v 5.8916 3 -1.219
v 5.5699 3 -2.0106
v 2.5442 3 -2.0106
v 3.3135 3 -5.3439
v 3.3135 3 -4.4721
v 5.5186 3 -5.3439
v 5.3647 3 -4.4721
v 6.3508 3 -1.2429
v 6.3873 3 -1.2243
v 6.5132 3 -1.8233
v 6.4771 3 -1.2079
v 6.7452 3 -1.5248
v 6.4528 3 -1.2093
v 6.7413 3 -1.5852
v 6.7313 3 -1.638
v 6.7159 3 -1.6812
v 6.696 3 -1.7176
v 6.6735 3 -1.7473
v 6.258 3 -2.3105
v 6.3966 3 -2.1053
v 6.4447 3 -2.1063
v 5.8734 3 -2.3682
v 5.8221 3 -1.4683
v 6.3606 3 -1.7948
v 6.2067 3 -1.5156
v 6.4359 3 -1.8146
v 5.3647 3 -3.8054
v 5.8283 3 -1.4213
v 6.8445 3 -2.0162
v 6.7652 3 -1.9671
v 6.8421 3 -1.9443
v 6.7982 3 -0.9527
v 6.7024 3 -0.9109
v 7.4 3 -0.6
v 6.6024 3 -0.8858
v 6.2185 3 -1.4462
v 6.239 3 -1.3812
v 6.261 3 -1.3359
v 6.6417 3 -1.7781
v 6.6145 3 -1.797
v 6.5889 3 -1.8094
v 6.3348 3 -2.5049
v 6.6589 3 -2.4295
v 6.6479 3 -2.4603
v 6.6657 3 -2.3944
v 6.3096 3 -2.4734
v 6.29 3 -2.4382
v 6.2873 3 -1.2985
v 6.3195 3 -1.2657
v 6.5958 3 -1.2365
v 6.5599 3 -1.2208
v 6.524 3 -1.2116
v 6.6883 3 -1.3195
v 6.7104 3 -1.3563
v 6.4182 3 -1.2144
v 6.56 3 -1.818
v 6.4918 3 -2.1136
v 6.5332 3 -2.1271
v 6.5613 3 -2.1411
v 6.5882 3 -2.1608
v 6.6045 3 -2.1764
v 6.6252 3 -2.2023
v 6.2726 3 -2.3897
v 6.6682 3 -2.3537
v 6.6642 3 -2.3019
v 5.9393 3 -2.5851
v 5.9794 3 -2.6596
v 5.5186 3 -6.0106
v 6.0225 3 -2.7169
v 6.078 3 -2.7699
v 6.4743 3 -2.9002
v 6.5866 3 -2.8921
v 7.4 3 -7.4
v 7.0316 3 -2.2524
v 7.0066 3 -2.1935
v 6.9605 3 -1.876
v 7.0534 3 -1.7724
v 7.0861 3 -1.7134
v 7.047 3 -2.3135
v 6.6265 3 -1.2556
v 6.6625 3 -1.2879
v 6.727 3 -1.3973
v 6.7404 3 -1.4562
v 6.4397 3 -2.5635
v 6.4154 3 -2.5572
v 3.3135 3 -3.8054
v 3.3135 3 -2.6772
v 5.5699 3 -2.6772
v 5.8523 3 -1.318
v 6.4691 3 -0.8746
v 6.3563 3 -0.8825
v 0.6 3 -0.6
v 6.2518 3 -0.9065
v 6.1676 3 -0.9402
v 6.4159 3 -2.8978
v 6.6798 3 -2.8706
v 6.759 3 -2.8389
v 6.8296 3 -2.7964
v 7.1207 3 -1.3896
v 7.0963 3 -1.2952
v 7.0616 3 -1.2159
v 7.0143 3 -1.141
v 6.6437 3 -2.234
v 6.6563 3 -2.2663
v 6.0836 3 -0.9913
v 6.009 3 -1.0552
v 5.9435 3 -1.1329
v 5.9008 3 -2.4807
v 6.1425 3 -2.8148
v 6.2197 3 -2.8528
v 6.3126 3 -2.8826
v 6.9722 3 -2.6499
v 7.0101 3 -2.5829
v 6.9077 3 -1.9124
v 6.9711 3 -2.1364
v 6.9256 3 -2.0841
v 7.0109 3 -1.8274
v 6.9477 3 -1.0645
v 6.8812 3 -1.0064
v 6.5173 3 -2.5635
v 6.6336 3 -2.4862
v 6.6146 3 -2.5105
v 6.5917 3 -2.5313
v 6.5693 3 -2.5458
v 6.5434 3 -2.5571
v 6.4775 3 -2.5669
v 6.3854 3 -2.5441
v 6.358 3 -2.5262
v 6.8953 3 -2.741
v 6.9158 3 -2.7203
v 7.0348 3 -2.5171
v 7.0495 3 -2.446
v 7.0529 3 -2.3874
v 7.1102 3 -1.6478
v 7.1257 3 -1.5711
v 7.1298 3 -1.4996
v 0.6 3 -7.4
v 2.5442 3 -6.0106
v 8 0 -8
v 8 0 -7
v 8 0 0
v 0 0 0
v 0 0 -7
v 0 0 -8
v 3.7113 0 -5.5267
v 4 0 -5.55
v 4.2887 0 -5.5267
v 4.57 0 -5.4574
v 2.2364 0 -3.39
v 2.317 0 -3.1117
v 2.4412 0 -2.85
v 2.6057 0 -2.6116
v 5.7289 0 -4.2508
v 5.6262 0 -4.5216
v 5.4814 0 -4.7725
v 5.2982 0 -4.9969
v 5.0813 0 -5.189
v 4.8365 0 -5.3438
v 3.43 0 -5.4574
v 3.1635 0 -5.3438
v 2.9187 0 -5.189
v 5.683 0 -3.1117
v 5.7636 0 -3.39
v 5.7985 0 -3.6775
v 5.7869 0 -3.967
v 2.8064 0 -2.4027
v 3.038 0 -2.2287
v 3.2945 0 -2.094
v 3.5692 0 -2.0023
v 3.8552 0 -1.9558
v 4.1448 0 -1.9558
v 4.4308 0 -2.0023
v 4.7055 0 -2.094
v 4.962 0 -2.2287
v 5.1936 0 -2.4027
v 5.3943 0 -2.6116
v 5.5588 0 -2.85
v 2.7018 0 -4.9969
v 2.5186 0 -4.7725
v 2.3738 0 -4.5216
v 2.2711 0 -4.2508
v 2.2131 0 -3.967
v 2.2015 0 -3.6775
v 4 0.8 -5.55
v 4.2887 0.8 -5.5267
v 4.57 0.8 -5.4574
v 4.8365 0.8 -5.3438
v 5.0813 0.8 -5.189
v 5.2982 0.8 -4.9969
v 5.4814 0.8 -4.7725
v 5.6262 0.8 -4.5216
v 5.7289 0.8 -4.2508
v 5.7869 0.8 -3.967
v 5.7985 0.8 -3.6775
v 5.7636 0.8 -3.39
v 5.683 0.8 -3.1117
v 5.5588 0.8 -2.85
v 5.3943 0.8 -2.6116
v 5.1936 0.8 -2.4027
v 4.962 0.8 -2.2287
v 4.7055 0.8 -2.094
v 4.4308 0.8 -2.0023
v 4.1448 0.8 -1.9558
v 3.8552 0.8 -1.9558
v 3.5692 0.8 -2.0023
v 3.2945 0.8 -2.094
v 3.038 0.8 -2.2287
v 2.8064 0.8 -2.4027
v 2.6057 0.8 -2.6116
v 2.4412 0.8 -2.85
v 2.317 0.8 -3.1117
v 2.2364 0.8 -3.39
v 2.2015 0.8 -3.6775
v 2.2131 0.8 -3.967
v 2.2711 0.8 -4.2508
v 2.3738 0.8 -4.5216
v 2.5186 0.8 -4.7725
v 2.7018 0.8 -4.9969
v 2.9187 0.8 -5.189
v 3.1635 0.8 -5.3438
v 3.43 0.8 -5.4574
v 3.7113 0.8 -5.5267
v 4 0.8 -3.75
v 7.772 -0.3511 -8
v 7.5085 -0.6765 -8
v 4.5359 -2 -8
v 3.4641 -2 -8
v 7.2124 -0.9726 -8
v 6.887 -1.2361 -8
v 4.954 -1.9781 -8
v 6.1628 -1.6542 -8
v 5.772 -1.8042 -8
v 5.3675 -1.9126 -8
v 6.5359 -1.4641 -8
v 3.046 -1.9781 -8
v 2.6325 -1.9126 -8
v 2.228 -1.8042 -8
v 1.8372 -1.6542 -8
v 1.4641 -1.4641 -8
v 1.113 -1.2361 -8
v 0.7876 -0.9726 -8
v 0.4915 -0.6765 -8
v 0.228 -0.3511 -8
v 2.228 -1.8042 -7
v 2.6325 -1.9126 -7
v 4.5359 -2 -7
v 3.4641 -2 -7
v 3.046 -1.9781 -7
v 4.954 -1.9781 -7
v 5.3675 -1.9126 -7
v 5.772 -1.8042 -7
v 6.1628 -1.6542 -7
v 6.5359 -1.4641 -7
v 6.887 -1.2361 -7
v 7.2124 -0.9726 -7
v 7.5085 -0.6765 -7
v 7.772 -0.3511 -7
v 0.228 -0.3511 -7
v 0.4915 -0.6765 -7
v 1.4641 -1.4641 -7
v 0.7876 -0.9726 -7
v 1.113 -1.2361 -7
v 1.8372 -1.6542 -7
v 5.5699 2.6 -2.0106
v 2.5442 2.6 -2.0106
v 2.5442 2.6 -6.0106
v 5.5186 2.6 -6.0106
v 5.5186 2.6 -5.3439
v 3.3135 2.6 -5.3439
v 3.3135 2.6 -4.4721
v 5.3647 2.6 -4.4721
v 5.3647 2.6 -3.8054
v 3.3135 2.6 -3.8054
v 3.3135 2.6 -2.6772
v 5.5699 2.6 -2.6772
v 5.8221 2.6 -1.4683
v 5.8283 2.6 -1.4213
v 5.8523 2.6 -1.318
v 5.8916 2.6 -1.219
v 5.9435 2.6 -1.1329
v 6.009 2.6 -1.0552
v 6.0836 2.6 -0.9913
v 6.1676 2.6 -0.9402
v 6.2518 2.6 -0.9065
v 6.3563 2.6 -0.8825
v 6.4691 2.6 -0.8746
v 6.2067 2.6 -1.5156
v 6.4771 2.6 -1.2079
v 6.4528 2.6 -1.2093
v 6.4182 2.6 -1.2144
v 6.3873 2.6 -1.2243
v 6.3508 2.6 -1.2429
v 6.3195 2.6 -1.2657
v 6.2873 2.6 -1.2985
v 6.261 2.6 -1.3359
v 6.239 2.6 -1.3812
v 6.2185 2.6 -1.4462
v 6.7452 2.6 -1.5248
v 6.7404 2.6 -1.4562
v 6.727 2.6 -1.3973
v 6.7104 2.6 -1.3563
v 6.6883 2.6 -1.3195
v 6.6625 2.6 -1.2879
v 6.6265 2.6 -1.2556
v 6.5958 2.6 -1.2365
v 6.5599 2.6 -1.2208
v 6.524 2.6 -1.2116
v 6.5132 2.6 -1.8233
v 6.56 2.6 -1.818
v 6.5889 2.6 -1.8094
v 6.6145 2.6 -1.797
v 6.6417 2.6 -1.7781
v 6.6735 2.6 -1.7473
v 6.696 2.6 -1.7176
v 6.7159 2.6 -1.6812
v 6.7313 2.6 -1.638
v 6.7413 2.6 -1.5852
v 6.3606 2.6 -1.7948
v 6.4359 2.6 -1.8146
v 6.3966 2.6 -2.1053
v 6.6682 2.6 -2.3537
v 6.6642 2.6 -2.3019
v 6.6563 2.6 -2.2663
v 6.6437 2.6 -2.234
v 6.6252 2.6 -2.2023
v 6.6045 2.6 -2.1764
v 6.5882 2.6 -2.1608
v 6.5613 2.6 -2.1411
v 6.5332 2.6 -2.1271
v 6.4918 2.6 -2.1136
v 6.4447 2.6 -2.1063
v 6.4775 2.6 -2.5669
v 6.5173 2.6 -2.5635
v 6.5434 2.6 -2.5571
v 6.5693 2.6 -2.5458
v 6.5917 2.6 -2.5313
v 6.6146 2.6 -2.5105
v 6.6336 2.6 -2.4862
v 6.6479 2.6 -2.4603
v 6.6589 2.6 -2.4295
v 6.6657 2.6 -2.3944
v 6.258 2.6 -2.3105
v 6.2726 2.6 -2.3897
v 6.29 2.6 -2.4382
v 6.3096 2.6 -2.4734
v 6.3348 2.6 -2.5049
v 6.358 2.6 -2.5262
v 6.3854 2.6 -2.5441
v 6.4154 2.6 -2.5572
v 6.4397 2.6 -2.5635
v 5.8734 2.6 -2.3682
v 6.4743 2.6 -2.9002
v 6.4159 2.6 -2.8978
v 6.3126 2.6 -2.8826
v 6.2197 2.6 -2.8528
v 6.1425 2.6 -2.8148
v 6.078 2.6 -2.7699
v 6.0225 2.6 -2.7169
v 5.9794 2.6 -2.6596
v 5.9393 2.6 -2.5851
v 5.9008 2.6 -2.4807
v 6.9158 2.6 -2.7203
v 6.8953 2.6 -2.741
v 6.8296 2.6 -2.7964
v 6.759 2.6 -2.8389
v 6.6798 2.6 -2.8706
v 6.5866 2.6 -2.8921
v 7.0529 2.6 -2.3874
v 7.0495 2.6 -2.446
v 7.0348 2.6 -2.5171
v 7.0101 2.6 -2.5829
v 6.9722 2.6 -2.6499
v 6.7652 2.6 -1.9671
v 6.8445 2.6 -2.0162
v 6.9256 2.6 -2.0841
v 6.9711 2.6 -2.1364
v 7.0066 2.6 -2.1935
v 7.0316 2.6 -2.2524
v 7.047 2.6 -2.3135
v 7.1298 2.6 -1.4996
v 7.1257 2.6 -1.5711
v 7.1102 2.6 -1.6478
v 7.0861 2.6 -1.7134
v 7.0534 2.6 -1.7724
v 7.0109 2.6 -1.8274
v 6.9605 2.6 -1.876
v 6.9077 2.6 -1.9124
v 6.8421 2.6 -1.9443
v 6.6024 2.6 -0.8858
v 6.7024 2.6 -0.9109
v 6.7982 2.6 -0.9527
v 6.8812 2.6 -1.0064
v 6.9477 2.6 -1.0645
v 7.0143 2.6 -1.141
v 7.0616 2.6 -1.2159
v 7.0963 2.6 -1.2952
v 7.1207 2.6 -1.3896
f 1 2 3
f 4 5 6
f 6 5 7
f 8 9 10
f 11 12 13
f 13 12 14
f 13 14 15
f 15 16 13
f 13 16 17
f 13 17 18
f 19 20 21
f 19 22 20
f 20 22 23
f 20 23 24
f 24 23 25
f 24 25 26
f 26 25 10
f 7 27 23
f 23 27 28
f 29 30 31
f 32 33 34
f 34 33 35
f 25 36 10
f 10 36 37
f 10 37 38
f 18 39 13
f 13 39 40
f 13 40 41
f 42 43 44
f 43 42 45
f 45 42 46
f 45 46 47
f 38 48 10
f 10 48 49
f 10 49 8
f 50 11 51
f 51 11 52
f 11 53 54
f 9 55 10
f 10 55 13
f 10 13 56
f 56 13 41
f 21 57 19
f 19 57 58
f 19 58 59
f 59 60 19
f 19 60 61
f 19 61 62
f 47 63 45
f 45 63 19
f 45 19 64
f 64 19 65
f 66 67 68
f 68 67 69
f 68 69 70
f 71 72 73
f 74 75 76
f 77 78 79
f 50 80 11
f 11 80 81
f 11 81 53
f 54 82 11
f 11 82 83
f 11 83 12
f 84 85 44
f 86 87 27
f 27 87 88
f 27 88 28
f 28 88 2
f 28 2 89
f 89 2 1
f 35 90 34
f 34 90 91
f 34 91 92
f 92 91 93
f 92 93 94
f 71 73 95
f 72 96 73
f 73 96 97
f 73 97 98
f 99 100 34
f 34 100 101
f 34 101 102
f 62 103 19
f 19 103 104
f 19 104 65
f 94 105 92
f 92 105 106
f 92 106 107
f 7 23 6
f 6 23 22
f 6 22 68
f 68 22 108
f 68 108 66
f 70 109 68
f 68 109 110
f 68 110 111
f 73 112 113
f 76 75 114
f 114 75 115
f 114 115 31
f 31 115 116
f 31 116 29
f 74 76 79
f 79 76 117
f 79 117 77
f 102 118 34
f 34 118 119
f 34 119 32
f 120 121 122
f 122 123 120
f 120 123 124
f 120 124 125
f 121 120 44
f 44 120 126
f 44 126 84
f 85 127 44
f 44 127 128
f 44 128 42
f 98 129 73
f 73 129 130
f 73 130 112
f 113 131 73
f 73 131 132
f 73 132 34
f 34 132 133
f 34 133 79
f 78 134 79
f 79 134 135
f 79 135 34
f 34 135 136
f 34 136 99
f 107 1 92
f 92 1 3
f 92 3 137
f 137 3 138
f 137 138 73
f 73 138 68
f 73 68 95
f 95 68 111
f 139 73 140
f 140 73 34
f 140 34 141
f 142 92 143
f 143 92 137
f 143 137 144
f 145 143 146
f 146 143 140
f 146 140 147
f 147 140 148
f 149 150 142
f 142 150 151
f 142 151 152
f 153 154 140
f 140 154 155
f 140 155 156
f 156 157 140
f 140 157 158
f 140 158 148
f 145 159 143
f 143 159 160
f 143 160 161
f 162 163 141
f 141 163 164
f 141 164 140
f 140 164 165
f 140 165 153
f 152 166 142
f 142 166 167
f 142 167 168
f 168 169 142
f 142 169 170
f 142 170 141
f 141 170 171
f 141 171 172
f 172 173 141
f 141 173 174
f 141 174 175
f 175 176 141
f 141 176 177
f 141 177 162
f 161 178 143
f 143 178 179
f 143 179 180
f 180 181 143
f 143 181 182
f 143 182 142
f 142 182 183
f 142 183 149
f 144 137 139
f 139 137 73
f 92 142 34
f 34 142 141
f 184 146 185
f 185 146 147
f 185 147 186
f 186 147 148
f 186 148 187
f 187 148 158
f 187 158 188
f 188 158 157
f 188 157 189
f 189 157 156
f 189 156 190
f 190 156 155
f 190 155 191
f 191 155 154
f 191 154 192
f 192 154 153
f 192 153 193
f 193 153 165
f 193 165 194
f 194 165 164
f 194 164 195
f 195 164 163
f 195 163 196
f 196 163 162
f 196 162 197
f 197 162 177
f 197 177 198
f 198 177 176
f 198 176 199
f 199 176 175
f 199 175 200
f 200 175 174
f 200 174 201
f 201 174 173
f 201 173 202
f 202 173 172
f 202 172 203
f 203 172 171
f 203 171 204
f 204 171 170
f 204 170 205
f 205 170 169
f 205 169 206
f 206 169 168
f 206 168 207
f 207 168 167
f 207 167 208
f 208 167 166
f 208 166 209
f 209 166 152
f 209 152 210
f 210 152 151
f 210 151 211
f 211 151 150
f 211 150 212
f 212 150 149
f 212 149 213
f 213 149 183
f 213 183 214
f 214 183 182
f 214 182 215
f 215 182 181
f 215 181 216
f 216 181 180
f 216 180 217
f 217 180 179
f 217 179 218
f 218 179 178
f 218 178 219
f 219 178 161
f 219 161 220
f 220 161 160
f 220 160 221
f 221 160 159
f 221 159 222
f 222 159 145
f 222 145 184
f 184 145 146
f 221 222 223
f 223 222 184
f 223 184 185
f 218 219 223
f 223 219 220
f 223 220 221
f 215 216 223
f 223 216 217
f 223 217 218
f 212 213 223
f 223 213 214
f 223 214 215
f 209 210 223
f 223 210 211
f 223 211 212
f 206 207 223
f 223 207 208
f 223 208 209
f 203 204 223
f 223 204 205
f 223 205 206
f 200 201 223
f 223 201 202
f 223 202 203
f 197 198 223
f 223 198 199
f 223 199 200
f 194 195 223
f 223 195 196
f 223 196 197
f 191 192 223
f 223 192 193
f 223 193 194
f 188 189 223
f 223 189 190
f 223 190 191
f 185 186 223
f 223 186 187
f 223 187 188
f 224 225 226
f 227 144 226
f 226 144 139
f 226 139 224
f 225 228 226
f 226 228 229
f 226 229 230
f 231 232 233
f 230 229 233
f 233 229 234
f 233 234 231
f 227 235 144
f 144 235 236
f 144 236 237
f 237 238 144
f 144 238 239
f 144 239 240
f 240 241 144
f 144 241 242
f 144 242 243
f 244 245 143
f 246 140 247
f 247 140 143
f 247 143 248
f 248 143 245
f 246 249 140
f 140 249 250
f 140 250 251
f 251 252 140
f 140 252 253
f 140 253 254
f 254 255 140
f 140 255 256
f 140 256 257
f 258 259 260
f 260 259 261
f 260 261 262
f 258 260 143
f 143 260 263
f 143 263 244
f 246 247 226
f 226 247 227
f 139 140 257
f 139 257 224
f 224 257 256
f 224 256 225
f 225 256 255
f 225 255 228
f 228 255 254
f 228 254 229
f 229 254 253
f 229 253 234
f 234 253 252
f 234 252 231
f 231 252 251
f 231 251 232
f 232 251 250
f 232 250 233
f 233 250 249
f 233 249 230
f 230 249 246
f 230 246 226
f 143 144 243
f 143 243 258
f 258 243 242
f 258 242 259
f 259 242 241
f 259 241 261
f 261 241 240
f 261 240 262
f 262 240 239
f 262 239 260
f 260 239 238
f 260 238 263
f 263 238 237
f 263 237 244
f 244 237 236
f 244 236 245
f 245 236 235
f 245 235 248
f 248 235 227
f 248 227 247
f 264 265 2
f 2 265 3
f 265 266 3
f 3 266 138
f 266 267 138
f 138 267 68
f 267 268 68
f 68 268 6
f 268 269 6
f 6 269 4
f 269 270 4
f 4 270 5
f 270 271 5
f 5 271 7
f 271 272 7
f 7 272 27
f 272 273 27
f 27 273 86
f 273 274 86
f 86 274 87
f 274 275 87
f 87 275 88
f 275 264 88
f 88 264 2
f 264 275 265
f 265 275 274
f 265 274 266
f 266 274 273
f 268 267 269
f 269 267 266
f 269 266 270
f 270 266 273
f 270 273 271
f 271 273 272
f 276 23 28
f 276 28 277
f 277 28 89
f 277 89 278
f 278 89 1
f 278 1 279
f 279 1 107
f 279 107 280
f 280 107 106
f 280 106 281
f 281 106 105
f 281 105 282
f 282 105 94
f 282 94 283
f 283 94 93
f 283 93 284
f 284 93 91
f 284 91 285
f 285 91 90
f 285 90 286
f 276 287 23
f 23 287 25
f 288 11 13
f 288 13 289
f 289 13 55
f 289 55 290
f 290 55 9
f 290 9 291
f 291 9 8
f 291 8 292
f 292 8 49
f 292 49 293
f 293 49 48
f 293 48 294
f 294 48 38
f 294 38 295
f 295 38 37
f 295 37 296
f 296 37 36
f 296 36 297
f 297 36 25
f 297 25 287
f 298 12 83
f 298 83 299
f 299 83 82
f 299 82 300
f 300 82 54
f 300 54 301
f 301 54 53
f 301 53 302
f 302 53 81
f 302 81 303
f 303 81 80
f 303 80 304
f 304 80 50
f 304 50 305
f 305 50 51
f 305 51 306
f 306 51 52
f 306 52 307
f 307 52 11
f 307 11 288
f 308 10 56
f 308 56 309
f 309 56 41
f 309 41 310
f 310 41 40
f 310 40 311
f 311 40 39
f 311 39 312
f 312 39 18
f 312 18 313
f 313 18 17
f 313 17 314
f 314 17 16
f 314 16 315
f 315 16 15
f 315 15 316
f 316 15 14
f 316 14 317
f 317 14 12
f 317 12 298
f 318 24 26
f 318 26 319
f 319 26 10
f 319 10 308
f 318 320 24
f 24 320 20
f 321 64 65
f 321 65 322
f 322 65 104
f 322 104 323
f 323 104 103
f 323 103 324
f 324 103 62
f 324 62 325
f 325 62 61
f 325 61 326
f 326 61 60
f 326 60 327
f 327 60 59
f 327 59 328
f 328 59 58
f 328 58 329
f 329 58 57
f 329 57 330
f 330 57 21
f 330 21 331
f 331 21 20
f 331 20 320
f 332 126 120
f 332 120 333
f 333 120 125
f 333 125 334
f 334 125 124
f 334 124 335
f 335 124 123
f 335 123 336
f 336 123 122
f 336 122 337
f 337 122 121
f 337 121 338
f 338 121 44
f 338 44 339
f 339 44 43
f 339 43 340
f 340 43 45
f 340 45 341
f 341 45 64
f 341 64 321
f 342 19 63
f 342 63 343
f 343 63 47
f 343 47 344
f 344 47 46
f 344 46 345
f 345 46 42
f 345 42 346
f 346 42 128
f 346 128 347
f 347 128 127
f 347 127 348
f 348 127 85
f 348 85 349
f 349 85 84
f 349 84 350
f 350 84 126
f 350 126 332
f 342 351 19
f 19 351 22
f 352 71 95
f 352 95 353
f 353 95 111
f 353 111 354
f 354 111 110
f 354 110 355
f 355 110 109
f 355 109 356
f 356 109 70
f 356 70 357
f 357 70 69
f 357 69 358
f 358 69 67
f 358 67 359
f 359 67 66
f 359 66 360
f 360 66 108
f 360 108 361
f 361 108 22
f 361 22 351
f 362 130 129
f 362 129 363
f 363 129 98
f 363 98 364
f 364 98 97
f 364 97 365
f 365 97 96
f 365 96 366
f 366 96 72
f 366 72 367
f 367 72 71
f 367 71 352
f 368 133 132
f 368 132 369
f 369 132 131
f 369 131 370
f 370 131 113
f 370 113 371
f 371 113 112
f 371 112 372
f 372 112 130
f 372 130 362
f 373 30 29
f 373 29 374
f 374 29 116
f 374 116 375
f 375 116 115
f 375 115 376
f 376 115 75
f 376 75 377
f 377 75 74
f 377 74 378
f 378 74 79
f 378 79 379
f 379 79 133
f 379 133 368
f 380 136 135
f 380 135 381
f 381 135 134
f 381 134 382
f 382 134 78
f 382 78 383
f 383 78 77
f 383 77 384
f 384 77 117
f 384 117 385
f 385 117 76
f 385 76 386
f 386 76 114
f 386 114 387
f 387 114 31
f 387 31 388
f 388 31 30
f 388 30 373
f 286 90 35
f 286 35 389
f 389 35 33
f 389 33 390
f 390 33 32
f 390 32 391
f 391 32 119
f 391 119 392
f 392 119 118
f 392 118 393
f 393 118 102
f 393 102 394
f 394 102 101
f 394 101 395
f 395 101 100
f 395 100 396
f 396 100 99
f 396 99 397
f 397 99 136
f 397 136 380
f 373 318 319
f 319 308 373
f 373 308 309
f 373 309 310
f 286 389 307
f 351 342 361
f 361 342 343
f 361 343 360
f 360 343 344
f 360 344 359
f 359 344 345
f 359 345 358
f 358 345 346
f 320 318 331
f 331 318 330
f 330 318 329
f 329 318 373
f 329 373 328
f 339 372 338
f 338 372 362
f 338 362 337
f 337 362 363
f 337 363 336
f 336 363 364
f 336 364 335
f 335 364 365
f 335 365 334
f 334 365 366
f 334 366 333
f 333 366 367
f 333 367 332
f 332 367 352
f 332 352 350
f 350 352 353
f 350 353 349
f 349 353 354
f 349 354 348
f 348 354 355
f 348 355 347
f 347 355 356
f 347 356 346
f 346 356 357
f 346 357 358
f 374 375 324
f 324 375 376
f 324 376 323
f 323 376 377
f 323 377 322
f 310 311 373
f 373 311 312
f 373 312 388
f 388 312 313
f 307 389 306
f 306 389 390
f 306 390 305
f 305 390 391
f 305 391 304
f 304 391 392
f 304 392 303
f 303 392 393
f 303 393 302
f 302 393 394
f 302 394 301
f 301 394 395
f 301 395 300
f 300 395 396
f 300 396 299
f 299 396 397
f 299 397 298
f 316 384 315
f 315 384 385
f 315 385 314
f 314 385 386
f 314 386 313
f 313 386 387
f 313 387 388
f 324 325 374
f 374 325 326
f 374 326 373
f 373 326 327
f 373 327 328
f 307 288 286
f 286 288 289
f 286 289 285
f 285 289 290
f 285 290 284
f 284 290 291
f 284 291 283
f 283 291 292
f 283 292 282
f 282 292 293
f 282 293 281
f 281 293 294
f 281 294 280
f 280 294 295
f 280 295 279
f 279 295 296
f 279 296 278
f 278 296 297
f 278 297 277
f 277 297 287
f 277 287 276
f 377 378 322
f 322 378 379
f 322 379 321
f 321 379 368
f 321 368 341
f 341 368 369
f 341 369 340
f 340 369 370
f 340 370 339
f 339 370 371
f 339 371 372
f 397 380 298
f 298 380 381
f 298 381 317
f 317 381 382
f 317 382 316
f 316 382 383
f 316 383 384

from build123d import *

# Parameters (mm, degrees)
SKETCH1_W               = 8
SKETCH1_H               = 8
BOSS_EXTRUDE1_DEPTH     = 3
CUT_EXTRUDE1_DEPTH      = 12.704699911
CUT_EXTRUDE1_DEPTH_BACK = 12.704699911
CUT_EXTRUDE2_DEPTH      = 11
SKETCH4_R               = 1.8
CUT_EXTRUDE3_DEPTH      = 0.8
SKETCH5_W               = 8
SKETCH5_H               = 1
BOSS_EXTRUDE2_DEPTH     = 2
FILLET1_R               = 4
CUT_EXTRUDE4_DEPTH      = 0.4
CUT_EXTRUDE5_DEPTH      = 0.4


with BuildPart() as part:
    # Sketch1 → Boss-Extrude1 (new body)
    with BuildSketch(Plane(origin=(0, 0, 0), x_dir=(1, 0, 0), z_dir=(0, 1, 0))):
        with Locations((4, 4)):
            Rectangle(SKETCH1_W, SKETCH1_H)
    extrude(amount=BOSS_EXTRUDE1_DEPTH)

    # Sketch2 → Cut-Extrude1 (cut, two sides: drawn at the far end of the back side and taken through both)
    with BuildSketch(Plane.XY.offset(-CUT_EXTRUDE1_DEPTH_BACK)):
        Polygon((0, 0), (0.6, 3), (0, 3), align=None)
        Polygon((8, 0), (7.4, 3), (8, 3), align=None)
    extrude(amount=CUT_EXTRUDE1_DEPTH + CUT_EXTRUDE1_DEPTH_BACK, mode=Mode.SUBTRACT)

    # Sketch3 → Cut-Extrude2 (cut)
    with BuildSketch(Plane(origin=(0, 0, 0), x_dir=(0, 0, -1), z_dir=(1, 0, 0))):
        Polygon((0, 0), (0.6, 3), (0, 3), align=None)
        Polygon((8, 3), (7.4, 3), (8, 0), align=None)
    extrude(amount=CUT_EXTRUDE2_DEPTH, mode=Mode.SUBTRACT)

    # Sketch4 → Cut-Extrude3 (cut)
    with BuildSketch(Plane.XZ):
        with Locations(Location((4, -3.75, 0), (0, 0, 270))):
            Circle(SKETCH4_R)
    extrude(amount=-CUT_EXTRUDE3_DEPTH, mode=Mode.SUBTRACT)

    # Sketch5 → Boss-Extrude2 (add)
    with BuildSketch(Plane.XZ):
        with Locations((4, -7.5)):
            Rectangle(SKETCH5_W, SKETCH5_H)
    extrude(amount=BOSS_EXTRUDE2_DEPTH)

    # Fillet1
    # the kernel refuses this fillet: 4 mm, written as the material it takes off along each edge
    with BuildSketch(Plane(origin=(8, -2, -16.660254038), x_dir=(0, 1, 0), z_dir=(0, 0, 1)), Plane(origin=(0, -2, 1.660254038), x_dir=(0, 1, 0), z_dir=(0, 0, -1))) as fillet1_piece_1:
        with BuildLine():
            CenterArc((4, 3.464101615), FILLET1_R, 180, 60)
            Line((0, 3.464101615), (-0.08, 3.464101615))
            Line((-0.08, 3.464101615), (-0.08, 0))
            Line((-0.08, 0), (0, -0.08))
            ThreePointArc((0, -0.08), (1, -0.08), (1.96, -0.069282032))
            Line((1.96, -0.069282032), (2, 0))
        make_face()
    extrude(amount=18.320508076, mode=Mode.SUBTRACT)

    # Sketch6 → Cut-Extrude4 (cut)
    with BuildSketch(Plane(origin=(0, 3, 0), x_dir=(1, 0, 0), z_dir=(0, 1, 0))):
        Polygon((2.544225106, 2.010567225), (2.544225106, 6.010567225), (5.51858408, 6.010567225), (5.51858408, 5.343900558), (3.313455875, 5.343900558), (3.313455875, 4.472105686), (5.364737926, 4.472105686), (5.364737926, 3.80543902), (3.313455875, 3.80543902), (3.313455875, 2.677233891), (5.569866131, 2.677233891), (5.569866131, 2.010567225), align=None)
    extrude(amount=-CUT_EXTRUDE4_DEPTH, mode=Mode.SUBTRACT)

    # Sketch7 → Cut-Extrude5 (cut)
    with BuildSketch(Plane(origin=(0, 3, 0), x_dir=(1, 0, 0), z_dir=(0, 1, 0))):
        with BuildLine():
            Line((5.822088817, 1.468310464), (6.206704202, 1.515586105))
            add(Edge.make_bspline(
                [(6.206704202, 1.515586105), (6.210025755, 1.491936921), (6.21633053, 1.447047438), (6.235989072, 1.384914698), (6.261652315, 1.330845836), (6.295629161, 1.286544364), (6.334912115, 1.251310519), (6.37872169, 1.226169889), (6.426661607, 1.210315729), (6.460052531, 1.208713548), (6.477136894, 1.207893797)],
                knots=[0, 0, 0, 0, 1.26631894, 2.403651751, 3.447242243, 4.428907923, 5.348362865, 6.231623936, 7.095215805, 8, 8, 8, 8], degree=3))
            add(Edge.make_bspline(
                [(6.477136894, 1.207893797), (6.486366298, 1.208091994), (6.504648304, 1.20848459), (6.531523321, 1.212603697), (6.557345996, 1.219374529), (6.58186155, 1.229117251), (6.605187017, 1.241222715), (6.627629553, 1.255638676), (6.648246393, 1.273643613), (6.668375088, 1.29334292), (6.68623752, 1.315767324), (6.701972196, 1.340096861), (6.715784117, 1.366090219), (6.726489771, 1.394417604), (6.734869896, 1.424465406), (6.740860884, 1.456364057), (6.744506994, 1.489993317), (6.74494315, 1.513039367), (6.74516574, 1.524800849)],
                knots=[0, 0, 0, 0, 0.951760839, 1.885289532, 2.797832748, 3.70117291, 4.60103766, 5.506897018, 6.445598779, 7.420035506, 8.410036365, 9.396193293, 10.407074535, 11.440988179, 12.514285005, 13.622404236, 14.786601276, 16, 16, 16, 16], degree=3))
            add(Edge.make_bspline(
                [(6.74516574, 1.524800849), (6.744331981, 1.546629456), (6.742741494, 1.588269906), (6.730451294, 1.647346431), (6.709137892, 1.699277092), (6.679276772, 1.743130281), (6.643793264, 1.778406879), (6.604044422, 1.8049236), (6.559654571, 1.820157256), (6.528795478, 1.822230353), (6.513194586, 1.823278413)],
                knots=[0, 0, 0, 0, 1.241512862, 2.368321189, 3.414110003, 4.41529485, 5.36642979, 6.245396713, 7.112955941, 8, 8, 8, 8], degree=3))
            add(Edge.make_bspline(
                [(6.513194586, 1.823278413), (6.502087722, 1.822994208), (6.47854234, 1.822391724), (6.441918774, 1.81613185), (6.401980616, 1.80749294), (6.374785766, 1.799182881), (6.360550356, 1.7948329)],
                knots=[0, 0, 0, 0, 0.854525515, 1.811503923, 2.854410343, 4, 4, 4, 4], degree=3))
            Line((6.360550356, 1.7948329), (6.396608048, 2.105329695))
            add(Edge.make_bspline(
                [(6.396608048, 2.105329695), (6.407296254, 2.105146348), (6.428036665, 2.104790564), (6.458323888, 2.107301653), (6.486673662, 2.111886341), (6.513019839, 2.119324972), (6.53738695, 2.128349551), (6.559988104, 2.139688262), (6.580270378, 2.153798702), (6.604965361, 2.175098338), (6.630230561, 2.207014566), (6.6530719, 2.250778884), (6.665798637, 2.300679459), (6.667408863, 2.335629458), (6.668242663, 2.353727131)],
                knots=[0, 0, 0, 0, 0.916749589, 1.778948191, 2.604102396, 3.376994206, 4.124053722, 4.831292757, 5.54010828, 6.238660037, 7.62386988, 9.002523041, 10.447858069, 12, 12, 12, 12], degree=3))
            add(Edge.make_bspline(
                [(6.668242663, 2.353727131), (6.667680515, 2.36913782), (6.666602635, 2.398686702), (6.656933325, 2.440733393), (6.640429824, 2.477855418), (6.617345194, 2.50940841), (6.589028098, 2.535030406), (6.555929861, 2.553963194), (6.518019093, 2.565003531), (6.491366313, 2.566231188), (6.477537535, 2.566868156)],
                knots=[0, 0, 0, 0, 1.146968804, 2.199229744, 3.192297141, 4.153502289, 5.090509175, 6.0173182, 6.971286811, 8, 8, 8, 8], degree=3))
            add(Edge.make_bspline(
                [(6.477537535, 2.566868156), (6.463673911, 2.566182836), (6.436422829, 2.564835732), (6.397428508, 2.551510744), (6.361454157, 2.530893795), (6.329709376, 2.501368407), (6.302195486, 2.464646404), (6.280874208, 2.419861118), (6.265858745, 2.367714197), (6.260698213, 2.33018187), (6.257986253, 2.3104579)],
                knots=[0, 0, 0, 0, 0.889956214, 1.749345552, 2.62404616, 3.543272128, 4.520224035, 5.562553653, 6.719074424, 8, 8, 8, 8], degree=3))
            Line((6.257986253, 2.3104579), (5.873370869, 2.368150208))
            add(Edge.make_bspline(
                [(5.873370869, 2.368150208), (5.879712758, 2.397514751), (5.891852554, 2.453725064), (5.916656, 2.532479948), (5.945759151, 2.602002338), (5.979761878, 2.663071325), (6.020038823, 2.716762155), (6.067859884, 2.763365742), (6.122509575, 2.804234412), (6.183883545, 2.838478774), (6.250614825, 2.865925856), (6.321633047, 2.886240153), (6.396757082, 2.897882068), (6.448117417, 2.899417689), (6.474332407, 2.90020149)],
                knots=[0, 0, 0, 0, 1.220808349, 2.336900656, 3.3513467, 4.279992853, 5.171472476, 6.069835959, 6.985198729, 7.938095762, 8.919113729, 9.91246339, 10.934493858, 12, 12, 12, 12], degree=3))
            add(Edge.make_bspline(
                [(6.474332407, 2.90020149), (6.496795991, 2.899690329), (6.540685792, 2.898691614), (6.604687523, 2.890097866), (6.665244055, 2.876137228), (6.722439804, 2.856388937), (6.776539911, 2.831244798), (6.826641223, 2.799609265), (6.873794781, 2.763093379), (6.901724377, 2.73467508), (6.915838817, 2.720313669)],
                knots=[0, 0, 0, 0, 1.096978699, 2.143298912, 3.148181587, 4.128190255, 5.094201205, 6.055441919, 7.017302331, 8, 8, 8, 8], degree=3))
            add(Edge.make_bspline(
                [(6.915838817, 2.720313669), (6.926741328, 2.708075606), (6.948274918, 2.683904162), (6.976233385, 2.645150995), (6.999633117, 2.604882958), (7.019482141, 2.563940258), (7.034243104, 2.52137348), (7.04524752, 2.477850813), (7.051783755, 2.43298662), (7.05249893, 2.402626167), (7.052858048, 2.387380977)],
                knots=[0, 0, 0, 0, 1.065582675, 2.104636323, 3.101288825, 4.092056841, 5.059084899, 6.026073946, 7.008813224, 8, 8, 8, 8], degree=3))
            add(Edge.make_bspline(
                [(7.052858048, 2.387380977), (7.052074688, 2.365937591), (7.050530541, 2.323668734), (7.036361111, 2.262180096), (7.013586987, 2.204054017), (6.982096895, 2.149068456), (6.941041129, 2.097733658), (6.890499978, 2.050511525), (6.831958555, 2.005600039), (6.787958464, 1.980231405), (6.765197792, 1.967108541)],
                knots=[0, 0, 0, 0, 0.957571776, 1.887550067, 2.804499428, 3.740591036, 4.709432777, 5.731457079, 6.826512349, 8, 8, 8, 8], degree=3))
            add(Edge.make_bspline(
                [(6.765197792, 1.967108541), (6.778741549, 1.963844189), (6.805468134, 1.957402478), (6.844077906, 1.94426987), (6.880236126, 1.927424278), (6.914828375, 1.908914943), (6.946996208, 1.886966635), (6.977363151, 1.862646466), (7.00476785, 1.834549826), (7.03102769, 1.804865641), (7.053982146, 1.772288453), (7.074722978, 1.738388398), (7.091382436, 1.702338355), (7.105631297, 1.665065232), (7.116248441, 1.625966572), (7.124562393, 1.585334894), (7.128729622, 1.542917296), (7.129427921, 1.514124194), (7.129781125, 1.499560464)],
                knots=[0, 0, 0, 0, 1.037381978, 2.047118658, 3.030848314, 4.005687143, 4.965748246, 5.927353932, 6.897971669, 7.885165084, 8.876109723, 9.862099733, 10.840989857, 11.829385213, 12.830906716, 13.855042526, 14.915067134, 16, 16, 16, 16], degree=3))
            add(Edge.make_bspline(
                [(7.129781125, 1.499560464), (7.129332308, 1.478289376), (7.12844718, 1.43633993), (7.11872513, 1.374773186), (7.10395436, 1.3156035), (7.083598929, 1.25859183), (7.056376257, 1.204435717), (7.023823759, 1.152375398), (6.985054773, 1.102929453), (6.940845684, 1.056472589), (6.892539484, 1.013951446), (6.84063463, 0.97660242), (6.785900139, 0.944991177), (6.728022396, 0.9191431), (6.667504686, 0.899031537), (6.603826037, 0.885208987), (6.537502989, 0.875987213), (6.49212598, 0.875040406), (6.469124074, 0.874560464)],
                knots=[0, 0, 0, 0, 1.006520189, 1.984993146, 2.943645202, 3.891894145, 4.845023195, 5.808336607, 6.795092628, 7.815033679, 8.841288157, 9.838185905, 10.83832808, 11.829129029, 12.835072876, 13.85234392, 14.911338897, 16, 16, 16, 16], degree=3))
            add(Edge.make_bspline(
                [(6.469124074, 0.874560464), (6.447326457, 0.874925903), (6.404510806, 0.875643711), (6.341832261, 0.884147308), (6.281800208, 0.896657101), (6.224765045, 0.914957582), (6.170229951, 0.937498647), (6.119224255, 0.966556317), (6.070434994, 0.999582769), (6.02545616, 1.03827062), (5.983635573, 1.080436419), (5.946901196, 1.126807021), (5.914165969, 1.175902437), (5.886010541, 1.228157933), (5.862670856, 1.283709297), (5.844497682, 1.342413141), (5.830004226, 1.404089696), (5.824763645, 1.446608551), (5.822088817, 1.468310464)],
                knots=[0, 0, 0, 0, 1.077528213, 2.11651914, 3.123276654, 4.10732375, 5.075386463, 6.036572488, 7.005896639, 7.98540975, 8.966414275, 9.939311093, 10.906719916, 11.882103104, 12.870994428, 13.882228509, 14.919075059, 16, 16, 16, 16], degree=3))
        make_face()
    extrude(amount=-CUT_EXTRUDE5_DEPTH, mode=Mode.SUBTRACT)


solid = part.part
